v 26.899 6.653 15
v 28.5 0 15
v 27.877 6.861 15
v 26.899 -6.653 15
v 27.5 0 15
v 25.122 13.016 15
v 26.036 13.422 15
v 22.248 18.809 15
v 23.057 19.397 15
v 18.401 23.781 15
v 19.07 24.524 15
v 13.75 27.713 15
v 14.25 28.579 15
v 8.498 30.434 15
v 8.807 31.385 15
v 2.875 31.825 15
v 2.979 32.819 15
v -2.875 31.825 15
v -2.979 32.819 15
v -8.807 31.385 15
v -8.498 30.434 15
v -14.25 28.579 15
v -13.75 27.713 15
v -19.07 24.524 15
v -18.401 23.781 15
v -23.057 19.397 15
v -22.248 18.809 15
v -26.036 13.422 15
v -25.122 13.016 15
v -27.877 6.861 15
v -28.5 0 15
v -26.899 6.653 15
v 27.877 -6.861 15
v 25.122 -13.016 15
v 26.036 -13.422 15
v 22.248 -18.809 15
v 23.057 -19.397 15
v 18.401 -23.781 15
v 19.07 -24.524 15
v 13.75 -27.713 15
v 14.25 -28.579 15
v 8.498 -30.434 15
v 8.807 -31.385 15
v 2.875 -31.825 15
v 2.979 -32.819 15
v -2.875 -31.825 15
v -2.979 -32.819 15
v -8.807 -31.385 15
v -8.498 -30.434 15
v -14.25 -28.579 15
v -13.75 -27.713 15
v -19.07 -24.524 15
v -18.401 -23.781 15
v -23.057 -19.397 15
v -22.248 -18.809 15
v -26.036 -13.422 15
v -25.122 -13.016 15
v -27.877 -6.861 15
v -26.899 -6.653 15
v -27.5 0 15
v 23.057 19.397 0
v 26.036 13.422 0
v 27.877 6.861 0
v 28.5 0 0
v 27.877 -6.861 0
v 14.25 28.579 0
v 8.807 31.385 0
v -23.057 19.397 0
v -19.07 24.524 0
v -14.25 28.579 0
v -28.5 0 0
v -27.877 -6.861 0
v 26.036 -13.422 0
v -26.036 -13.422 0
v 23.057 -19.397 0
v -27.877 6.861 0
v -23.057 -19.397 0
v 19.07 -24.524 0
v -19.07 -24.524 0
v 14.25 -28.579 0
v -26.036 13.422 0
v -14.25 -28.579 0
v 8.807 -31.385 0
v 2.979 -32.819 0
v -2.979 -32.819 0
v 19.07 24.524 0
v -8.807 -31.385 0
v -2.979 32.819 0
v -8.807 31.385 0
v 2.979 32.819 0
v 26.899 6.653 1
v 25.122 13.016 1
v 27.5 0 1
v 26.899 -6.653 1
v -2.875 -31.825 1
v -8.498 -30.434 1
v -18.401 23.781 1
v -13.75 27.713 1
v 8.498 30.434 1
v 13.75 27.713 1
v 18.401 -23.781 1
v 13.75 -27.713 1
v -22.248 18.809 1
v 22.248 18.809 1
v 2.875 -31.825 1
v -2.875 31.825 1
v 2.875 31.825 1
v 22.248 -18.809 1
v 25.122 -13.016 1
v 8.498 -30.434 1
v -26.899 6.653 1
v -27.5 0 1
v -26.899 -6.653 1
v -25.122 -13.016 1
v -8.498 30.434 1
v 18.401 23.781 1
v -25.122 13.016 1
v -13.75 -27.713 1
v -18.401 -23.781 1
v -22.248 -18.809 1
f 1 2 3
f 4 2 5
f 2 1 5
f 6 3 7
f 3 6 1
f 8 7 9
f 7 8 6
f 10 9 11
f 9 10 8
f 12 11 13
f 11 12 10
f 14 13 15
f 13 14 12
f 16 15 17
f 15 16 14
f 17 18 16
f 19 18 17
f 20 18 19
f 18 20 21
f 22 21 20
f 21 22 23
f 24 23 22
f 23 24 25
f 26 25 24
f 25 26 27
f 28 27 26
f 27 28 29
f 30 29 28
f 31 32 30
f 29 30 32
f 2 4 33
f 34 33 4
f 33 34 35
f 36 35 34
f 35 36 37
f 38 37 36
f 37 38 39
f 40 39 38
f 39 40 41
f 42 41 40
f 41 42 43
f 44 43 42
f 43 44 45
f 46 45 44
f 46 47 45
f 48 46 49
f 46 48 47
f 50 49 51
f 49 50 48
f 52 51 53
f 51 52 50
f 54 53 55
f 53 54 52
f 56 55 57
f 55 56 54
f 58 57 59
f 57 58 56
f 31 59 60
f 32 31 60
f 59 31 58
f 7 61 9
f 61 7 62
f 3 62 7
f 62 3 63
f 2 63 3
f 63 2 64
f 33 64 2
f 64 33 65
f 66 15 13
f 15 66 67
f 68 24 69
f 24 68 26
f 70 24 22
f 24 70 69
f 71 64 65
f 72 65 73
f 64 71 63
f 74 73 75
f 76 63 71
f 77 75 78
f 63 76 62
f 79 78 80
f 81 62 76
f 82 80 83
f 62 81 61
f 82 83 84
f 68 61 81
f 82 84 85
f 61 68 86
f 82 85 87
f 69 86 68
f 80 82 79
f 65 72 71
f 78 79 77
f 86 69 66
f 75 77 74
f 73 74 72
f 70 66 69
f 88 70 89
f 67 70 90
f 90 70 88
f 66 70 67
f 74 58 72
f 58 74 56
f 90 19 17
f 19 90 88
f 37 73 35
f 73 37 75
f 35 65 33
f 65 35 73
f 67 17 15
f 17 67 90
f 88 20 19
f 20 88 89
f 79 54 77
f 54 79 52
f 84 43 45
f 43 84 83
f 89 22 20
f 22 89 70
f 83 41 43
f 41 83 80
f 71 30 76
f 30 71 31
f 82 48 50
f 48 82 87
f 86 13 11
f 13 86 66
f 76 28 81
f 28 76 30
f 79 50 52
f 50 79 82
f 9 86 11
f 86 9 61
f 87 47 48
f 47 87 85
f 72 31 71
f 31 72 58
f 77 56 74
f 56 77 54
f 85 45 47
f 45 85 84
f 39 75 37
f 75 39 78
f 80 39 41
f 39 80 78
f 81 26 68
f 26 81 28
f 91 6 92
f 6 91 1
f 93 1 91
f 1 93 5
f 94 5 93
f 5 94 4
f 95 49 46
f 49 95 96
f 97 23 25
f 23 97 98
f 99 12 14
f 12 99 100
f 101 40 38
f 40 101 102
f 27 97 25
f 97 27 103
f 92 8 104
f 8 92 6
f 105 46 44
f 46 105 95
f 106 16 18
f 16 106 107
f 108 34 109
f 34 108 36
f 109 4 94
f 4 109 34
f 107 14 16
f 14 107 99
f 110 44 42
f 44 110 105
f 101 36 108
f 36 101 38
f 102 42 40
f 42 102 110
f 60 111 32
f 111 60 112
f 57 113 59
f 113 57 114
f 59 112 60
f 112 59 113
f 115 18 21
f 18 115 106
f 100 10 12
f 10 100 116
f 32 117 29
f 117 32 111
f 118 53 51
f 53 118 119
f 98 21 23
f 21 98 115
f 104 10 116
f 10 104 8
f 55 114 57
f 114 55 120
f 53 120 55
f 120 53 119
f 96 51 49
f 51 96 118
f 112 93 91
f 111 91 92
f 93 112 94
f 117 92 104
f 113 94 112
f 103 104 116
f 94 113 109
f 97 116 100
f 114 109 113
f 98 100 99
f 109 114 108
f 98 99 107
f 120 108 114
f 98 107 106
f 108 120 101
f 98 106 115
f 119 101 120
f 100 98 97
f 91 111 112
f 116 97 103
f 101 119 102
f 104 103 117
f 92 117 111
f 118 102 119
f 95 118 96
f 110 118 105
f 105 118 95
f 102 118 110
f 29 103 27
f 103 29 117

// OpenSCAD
// case
//W=1;
//X1=55/2;
//X2=64/2;
//H=160;

// lid
W=1;
X1=55/2 + W;
X2=64/2 + W;
H=15;

module oval(w,h, height, center = false) {
 scale([1, h/w, 1]) cylinder(h=height, r=w, center=center);
}

difference() {
    oval(X1,X2,H);
    //cylinder(H,X1,X2);
    translate([0,0,W]) {
        oval(X1-W,X2-W,H);
        //cylinder(H,X1-W,X2-W);
    }
}
